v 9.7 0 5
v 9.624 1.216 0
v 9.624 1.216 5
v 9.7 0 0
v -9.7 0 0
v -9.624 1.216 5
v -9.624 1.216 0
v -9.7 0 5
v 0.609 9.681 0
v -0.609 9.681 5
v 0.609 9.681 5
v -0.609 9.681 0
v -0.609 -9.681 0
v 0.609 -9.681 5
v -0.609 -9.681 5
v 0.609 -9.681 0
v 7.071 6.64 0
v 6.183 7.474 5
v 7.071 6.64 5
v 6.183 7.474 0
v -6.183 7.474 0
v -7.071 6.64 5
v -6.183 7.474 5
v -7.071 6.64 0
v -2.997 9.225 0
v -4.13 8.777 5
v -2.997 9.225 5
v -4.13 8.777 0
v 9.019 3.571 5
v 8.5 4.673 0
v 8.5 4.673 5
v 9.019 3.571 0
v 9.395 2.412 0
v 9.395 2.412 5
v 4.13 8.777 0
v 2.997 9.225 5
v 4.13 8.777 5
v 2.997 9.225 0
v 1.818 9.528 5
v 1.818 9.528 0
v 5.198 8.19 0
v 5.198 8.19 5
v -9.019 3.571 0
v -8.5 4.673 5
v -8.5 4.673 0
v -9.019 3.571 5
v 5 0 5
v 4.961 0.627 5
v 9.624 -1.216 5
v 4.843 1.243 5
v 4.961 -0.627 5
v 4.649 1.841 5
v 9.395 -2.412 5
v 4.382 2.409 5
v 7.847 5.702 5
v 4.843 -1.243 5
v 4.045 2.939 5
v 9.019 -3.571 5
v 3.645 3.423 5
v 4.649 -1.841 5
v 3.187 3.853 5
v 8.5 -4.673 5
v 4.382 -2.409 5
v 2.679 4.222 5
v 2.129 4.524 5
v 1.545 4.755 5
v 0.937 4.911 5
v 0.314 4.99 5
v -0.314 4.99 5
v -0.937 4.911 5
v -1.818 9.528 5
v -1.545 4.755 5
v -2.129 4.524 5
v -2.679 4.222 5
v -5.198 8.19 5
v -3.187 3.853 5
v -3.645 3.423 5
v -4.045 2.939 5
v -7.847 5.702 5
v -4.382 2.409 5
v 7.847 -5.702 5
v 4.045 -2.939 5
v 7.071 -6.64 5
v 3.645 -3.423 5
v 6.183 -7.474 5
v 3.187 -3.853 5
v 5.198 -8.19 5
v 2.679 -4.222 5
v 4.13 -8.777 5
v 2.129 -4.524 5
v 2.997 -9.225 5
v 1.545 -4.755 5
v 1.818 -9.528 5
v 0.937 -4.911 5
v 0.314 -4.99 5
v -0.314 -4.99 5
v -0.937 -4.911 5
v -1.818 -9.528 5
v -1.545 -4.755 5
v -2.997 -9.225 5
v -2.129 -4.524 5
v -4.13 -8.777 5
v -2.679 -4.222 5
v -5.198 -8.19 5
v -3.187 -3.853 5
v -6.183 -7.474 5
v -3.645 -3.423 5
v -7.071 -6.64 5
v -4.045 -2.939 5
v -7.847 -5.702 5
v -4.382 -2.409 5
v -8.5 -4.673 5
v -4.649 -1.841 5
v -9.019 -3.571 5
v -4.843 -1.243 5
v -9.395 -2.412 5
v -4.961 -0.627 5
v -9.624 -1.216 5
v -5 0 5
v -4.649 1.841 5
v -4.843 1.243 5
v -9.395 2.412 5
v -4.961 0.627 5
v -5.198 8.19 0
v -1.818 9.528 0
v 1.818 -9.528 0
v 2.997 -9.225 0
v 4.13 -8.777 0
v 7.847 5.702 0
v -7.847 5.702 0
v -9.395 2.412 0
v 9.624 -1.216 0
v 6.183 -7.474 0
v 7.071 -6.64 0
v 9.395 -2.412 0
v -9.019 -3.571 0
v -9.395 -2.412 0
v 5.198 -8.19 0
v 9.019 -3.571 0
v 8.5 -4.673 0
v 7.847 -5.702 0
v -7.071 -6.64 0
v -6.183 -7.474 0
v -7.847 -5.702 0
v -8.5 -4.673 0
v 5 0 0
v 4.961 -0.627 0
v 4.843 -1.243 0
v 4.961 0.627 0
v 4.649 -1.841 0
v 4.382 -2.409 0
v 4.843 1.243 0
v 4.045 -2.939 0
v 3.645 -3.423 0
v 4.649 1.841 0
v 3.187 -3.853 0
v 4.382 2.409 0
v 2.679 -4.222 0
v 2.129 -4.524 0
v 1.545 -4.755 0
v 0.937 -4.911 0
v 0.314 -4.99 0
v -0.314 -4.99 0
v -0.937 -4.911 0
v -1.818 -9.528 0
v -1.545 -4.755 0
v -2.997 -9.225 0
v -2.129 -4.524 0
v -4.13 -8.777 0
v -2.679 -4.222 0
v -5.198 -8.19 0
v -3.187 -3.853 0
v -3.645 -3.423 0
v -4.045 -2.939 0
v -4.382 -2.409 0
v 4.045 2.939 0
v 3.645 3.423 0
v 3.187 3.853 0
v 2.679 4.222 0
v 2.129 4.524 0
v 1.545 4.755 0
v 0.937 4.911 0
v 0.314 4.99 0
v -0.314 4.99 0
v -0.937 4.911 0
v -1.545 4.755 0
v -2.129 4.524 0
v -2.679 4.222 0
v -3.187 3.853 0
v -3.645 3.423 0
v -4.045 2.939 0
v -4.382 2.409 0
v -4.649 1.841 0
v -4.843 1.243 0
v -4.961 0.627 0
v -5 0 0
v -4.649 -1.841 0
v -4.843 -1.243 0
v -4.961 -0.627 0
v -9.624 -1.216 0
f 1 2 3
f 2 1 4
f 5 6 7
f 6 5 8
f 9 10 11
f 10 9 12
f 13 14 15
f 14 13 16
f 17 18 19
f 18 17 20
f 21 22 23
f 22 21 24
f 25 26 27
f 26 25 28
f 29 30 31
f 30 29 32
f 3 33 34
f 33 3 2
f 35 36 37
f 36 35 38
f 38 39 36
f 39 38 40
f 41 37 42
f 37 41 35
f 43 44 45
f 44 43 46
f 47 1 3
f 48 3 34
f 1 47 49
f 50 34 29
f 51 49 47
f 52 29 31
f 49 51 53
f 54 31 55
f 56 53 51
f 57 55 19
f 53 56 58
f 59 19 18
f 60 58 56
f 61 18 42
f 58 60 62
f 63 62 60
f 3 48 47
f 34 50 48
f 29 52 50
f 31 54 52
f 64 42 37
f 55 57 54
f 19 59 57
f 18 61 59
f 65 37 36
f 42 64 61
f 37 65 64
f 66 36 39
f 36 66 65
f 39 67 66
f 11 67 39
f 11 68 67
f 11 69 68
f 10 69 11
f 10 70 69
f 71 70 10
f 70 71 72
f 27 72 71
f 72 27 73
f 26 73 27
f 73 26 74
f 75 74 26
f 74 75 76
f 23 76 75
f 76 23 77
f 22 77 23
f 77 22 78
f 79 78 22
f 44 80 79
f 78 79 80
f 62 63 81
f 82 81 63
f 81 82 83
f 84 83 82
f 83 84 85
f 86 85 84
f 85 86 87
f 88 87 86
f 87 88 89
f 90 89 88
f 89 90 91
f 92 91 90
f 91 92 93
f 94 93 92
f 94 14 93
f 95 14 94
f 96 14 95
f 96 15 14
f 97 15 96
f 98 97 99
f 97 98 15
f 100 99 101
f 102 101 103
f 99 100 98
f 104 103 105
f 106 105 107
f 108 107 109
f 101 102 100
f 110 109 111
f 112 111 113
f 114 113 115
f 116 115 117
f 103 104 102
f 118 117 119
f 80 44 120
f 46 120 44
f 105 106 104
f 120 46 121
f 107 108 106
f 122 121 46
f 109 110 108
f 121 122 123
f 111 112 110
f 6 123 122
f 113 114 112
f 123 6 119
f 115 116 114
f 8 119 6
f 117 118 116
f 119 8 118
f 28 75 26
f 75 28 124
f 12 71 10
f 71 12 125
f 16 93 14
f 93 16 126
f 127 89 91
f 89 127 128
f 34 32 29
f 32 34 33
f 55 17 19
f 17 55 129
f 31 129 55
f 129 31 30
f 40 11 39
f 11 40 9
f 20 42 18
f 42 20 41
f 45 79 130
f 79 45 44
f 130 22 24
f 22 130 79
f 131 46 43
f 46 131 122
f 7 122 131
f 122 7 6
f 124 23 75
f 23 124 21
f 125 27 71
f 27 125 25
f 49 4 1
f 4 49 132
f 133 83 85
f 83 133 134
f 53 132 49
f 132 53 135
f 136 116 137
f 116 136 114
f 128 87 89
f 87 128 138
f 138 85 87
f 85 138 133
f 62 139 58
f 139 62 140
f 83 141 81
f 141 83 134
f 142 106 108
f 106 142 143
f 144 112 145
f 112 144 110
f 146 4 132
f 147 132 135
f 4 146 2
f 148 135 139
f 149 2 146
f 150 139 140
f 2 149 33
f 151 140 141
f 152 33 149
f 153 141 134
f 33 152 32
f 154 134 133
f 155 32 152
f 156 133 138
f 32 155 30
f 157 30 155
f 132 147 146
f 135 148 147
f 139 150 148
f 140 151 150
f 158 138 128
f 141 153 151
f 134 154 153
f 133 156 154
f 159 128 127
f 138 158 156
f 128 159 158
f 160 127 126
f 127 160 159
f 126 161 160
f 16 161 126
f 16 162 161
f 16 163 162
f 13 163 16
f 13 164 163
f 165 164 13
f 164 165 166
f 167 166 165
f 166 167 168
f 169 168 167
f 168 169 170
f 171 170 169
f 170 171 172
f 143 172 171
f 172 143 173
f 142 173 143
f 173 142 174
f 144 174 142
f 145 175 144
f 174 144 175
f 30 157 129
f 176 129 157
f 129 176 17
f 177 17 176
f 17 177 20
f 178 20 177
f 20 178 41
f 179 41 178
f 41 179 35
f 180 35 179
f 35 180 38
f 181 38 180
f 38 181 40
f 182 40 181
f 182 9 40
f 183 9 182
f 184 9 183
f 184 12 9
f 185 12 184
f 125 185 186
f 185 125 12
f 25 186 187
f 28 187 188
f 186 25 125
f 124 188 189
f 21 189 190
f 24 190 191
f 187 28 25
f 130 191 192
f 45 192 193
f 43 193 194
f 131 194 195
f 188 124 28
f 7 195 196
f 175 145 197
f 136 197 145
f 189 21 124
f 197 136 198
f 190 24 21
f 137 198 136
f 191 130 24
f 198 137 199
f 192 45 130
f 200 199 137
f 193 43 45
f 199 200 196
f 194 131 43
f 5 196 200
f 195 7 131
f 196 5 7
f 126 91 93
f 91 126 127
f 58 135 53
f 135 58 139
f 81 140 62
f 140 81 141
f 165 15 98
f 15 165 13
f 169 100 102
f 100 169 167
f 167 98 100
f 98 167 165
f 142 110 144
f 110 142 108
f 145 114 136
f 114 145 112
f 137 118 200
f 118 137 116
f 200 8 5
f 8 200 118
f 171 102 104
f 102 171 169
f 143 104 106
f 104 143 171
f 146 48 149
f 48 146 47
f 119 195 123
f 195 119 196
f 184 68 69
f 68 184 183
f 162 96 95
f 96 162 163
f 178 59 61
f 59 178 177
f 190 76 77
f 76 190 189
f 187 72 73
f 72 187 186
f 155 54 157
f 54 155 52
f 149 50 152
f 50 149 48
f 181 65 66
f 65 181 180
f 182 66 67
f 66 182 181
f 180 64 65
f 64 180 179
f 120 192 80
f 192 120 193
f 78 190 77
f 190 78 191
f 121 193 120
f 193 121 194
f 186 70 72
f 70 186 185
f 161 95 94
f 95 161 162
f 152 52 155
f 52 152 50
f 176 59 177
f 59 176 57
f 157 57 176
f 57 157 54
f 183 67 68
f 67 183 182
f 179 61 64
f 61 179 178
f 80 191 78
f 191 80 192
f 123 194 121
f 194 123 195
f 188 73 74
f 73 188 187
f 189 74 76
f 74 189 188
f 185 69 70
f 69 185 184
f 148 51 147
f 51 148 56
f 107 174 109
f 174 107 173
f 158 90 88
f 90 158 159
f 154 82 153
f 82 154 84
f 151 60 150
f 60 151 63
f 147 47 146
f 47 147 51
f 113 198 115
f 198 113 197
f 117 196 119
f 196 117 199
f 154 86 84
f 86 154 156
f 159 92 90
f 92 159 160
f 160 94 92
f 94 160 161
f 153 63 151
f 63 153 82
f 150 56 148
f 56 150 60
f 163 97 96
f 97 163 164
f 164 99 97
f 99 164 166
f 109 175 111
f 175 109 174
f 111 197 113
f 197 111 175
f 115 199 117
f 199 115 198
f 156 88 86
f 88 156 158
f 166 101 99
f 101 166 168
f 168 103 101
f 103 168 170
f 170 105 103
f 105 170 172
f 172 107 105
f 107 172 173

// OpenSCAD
$fn = 50;


difference() {
	union() {
		translate(v = [0, 0, 0]) {
			rotate(a = [0, 0, 0]) {
				cylinder(h = 5, r = 9.7000000000);
			}
		}
	}
	union() {
		translate(v = [0, 0, 0]) {
			rotate(a = [0, 0, 0]) {
				cylinder(h = 5, r = 5.0000000000);
			}
		}
	}
}
